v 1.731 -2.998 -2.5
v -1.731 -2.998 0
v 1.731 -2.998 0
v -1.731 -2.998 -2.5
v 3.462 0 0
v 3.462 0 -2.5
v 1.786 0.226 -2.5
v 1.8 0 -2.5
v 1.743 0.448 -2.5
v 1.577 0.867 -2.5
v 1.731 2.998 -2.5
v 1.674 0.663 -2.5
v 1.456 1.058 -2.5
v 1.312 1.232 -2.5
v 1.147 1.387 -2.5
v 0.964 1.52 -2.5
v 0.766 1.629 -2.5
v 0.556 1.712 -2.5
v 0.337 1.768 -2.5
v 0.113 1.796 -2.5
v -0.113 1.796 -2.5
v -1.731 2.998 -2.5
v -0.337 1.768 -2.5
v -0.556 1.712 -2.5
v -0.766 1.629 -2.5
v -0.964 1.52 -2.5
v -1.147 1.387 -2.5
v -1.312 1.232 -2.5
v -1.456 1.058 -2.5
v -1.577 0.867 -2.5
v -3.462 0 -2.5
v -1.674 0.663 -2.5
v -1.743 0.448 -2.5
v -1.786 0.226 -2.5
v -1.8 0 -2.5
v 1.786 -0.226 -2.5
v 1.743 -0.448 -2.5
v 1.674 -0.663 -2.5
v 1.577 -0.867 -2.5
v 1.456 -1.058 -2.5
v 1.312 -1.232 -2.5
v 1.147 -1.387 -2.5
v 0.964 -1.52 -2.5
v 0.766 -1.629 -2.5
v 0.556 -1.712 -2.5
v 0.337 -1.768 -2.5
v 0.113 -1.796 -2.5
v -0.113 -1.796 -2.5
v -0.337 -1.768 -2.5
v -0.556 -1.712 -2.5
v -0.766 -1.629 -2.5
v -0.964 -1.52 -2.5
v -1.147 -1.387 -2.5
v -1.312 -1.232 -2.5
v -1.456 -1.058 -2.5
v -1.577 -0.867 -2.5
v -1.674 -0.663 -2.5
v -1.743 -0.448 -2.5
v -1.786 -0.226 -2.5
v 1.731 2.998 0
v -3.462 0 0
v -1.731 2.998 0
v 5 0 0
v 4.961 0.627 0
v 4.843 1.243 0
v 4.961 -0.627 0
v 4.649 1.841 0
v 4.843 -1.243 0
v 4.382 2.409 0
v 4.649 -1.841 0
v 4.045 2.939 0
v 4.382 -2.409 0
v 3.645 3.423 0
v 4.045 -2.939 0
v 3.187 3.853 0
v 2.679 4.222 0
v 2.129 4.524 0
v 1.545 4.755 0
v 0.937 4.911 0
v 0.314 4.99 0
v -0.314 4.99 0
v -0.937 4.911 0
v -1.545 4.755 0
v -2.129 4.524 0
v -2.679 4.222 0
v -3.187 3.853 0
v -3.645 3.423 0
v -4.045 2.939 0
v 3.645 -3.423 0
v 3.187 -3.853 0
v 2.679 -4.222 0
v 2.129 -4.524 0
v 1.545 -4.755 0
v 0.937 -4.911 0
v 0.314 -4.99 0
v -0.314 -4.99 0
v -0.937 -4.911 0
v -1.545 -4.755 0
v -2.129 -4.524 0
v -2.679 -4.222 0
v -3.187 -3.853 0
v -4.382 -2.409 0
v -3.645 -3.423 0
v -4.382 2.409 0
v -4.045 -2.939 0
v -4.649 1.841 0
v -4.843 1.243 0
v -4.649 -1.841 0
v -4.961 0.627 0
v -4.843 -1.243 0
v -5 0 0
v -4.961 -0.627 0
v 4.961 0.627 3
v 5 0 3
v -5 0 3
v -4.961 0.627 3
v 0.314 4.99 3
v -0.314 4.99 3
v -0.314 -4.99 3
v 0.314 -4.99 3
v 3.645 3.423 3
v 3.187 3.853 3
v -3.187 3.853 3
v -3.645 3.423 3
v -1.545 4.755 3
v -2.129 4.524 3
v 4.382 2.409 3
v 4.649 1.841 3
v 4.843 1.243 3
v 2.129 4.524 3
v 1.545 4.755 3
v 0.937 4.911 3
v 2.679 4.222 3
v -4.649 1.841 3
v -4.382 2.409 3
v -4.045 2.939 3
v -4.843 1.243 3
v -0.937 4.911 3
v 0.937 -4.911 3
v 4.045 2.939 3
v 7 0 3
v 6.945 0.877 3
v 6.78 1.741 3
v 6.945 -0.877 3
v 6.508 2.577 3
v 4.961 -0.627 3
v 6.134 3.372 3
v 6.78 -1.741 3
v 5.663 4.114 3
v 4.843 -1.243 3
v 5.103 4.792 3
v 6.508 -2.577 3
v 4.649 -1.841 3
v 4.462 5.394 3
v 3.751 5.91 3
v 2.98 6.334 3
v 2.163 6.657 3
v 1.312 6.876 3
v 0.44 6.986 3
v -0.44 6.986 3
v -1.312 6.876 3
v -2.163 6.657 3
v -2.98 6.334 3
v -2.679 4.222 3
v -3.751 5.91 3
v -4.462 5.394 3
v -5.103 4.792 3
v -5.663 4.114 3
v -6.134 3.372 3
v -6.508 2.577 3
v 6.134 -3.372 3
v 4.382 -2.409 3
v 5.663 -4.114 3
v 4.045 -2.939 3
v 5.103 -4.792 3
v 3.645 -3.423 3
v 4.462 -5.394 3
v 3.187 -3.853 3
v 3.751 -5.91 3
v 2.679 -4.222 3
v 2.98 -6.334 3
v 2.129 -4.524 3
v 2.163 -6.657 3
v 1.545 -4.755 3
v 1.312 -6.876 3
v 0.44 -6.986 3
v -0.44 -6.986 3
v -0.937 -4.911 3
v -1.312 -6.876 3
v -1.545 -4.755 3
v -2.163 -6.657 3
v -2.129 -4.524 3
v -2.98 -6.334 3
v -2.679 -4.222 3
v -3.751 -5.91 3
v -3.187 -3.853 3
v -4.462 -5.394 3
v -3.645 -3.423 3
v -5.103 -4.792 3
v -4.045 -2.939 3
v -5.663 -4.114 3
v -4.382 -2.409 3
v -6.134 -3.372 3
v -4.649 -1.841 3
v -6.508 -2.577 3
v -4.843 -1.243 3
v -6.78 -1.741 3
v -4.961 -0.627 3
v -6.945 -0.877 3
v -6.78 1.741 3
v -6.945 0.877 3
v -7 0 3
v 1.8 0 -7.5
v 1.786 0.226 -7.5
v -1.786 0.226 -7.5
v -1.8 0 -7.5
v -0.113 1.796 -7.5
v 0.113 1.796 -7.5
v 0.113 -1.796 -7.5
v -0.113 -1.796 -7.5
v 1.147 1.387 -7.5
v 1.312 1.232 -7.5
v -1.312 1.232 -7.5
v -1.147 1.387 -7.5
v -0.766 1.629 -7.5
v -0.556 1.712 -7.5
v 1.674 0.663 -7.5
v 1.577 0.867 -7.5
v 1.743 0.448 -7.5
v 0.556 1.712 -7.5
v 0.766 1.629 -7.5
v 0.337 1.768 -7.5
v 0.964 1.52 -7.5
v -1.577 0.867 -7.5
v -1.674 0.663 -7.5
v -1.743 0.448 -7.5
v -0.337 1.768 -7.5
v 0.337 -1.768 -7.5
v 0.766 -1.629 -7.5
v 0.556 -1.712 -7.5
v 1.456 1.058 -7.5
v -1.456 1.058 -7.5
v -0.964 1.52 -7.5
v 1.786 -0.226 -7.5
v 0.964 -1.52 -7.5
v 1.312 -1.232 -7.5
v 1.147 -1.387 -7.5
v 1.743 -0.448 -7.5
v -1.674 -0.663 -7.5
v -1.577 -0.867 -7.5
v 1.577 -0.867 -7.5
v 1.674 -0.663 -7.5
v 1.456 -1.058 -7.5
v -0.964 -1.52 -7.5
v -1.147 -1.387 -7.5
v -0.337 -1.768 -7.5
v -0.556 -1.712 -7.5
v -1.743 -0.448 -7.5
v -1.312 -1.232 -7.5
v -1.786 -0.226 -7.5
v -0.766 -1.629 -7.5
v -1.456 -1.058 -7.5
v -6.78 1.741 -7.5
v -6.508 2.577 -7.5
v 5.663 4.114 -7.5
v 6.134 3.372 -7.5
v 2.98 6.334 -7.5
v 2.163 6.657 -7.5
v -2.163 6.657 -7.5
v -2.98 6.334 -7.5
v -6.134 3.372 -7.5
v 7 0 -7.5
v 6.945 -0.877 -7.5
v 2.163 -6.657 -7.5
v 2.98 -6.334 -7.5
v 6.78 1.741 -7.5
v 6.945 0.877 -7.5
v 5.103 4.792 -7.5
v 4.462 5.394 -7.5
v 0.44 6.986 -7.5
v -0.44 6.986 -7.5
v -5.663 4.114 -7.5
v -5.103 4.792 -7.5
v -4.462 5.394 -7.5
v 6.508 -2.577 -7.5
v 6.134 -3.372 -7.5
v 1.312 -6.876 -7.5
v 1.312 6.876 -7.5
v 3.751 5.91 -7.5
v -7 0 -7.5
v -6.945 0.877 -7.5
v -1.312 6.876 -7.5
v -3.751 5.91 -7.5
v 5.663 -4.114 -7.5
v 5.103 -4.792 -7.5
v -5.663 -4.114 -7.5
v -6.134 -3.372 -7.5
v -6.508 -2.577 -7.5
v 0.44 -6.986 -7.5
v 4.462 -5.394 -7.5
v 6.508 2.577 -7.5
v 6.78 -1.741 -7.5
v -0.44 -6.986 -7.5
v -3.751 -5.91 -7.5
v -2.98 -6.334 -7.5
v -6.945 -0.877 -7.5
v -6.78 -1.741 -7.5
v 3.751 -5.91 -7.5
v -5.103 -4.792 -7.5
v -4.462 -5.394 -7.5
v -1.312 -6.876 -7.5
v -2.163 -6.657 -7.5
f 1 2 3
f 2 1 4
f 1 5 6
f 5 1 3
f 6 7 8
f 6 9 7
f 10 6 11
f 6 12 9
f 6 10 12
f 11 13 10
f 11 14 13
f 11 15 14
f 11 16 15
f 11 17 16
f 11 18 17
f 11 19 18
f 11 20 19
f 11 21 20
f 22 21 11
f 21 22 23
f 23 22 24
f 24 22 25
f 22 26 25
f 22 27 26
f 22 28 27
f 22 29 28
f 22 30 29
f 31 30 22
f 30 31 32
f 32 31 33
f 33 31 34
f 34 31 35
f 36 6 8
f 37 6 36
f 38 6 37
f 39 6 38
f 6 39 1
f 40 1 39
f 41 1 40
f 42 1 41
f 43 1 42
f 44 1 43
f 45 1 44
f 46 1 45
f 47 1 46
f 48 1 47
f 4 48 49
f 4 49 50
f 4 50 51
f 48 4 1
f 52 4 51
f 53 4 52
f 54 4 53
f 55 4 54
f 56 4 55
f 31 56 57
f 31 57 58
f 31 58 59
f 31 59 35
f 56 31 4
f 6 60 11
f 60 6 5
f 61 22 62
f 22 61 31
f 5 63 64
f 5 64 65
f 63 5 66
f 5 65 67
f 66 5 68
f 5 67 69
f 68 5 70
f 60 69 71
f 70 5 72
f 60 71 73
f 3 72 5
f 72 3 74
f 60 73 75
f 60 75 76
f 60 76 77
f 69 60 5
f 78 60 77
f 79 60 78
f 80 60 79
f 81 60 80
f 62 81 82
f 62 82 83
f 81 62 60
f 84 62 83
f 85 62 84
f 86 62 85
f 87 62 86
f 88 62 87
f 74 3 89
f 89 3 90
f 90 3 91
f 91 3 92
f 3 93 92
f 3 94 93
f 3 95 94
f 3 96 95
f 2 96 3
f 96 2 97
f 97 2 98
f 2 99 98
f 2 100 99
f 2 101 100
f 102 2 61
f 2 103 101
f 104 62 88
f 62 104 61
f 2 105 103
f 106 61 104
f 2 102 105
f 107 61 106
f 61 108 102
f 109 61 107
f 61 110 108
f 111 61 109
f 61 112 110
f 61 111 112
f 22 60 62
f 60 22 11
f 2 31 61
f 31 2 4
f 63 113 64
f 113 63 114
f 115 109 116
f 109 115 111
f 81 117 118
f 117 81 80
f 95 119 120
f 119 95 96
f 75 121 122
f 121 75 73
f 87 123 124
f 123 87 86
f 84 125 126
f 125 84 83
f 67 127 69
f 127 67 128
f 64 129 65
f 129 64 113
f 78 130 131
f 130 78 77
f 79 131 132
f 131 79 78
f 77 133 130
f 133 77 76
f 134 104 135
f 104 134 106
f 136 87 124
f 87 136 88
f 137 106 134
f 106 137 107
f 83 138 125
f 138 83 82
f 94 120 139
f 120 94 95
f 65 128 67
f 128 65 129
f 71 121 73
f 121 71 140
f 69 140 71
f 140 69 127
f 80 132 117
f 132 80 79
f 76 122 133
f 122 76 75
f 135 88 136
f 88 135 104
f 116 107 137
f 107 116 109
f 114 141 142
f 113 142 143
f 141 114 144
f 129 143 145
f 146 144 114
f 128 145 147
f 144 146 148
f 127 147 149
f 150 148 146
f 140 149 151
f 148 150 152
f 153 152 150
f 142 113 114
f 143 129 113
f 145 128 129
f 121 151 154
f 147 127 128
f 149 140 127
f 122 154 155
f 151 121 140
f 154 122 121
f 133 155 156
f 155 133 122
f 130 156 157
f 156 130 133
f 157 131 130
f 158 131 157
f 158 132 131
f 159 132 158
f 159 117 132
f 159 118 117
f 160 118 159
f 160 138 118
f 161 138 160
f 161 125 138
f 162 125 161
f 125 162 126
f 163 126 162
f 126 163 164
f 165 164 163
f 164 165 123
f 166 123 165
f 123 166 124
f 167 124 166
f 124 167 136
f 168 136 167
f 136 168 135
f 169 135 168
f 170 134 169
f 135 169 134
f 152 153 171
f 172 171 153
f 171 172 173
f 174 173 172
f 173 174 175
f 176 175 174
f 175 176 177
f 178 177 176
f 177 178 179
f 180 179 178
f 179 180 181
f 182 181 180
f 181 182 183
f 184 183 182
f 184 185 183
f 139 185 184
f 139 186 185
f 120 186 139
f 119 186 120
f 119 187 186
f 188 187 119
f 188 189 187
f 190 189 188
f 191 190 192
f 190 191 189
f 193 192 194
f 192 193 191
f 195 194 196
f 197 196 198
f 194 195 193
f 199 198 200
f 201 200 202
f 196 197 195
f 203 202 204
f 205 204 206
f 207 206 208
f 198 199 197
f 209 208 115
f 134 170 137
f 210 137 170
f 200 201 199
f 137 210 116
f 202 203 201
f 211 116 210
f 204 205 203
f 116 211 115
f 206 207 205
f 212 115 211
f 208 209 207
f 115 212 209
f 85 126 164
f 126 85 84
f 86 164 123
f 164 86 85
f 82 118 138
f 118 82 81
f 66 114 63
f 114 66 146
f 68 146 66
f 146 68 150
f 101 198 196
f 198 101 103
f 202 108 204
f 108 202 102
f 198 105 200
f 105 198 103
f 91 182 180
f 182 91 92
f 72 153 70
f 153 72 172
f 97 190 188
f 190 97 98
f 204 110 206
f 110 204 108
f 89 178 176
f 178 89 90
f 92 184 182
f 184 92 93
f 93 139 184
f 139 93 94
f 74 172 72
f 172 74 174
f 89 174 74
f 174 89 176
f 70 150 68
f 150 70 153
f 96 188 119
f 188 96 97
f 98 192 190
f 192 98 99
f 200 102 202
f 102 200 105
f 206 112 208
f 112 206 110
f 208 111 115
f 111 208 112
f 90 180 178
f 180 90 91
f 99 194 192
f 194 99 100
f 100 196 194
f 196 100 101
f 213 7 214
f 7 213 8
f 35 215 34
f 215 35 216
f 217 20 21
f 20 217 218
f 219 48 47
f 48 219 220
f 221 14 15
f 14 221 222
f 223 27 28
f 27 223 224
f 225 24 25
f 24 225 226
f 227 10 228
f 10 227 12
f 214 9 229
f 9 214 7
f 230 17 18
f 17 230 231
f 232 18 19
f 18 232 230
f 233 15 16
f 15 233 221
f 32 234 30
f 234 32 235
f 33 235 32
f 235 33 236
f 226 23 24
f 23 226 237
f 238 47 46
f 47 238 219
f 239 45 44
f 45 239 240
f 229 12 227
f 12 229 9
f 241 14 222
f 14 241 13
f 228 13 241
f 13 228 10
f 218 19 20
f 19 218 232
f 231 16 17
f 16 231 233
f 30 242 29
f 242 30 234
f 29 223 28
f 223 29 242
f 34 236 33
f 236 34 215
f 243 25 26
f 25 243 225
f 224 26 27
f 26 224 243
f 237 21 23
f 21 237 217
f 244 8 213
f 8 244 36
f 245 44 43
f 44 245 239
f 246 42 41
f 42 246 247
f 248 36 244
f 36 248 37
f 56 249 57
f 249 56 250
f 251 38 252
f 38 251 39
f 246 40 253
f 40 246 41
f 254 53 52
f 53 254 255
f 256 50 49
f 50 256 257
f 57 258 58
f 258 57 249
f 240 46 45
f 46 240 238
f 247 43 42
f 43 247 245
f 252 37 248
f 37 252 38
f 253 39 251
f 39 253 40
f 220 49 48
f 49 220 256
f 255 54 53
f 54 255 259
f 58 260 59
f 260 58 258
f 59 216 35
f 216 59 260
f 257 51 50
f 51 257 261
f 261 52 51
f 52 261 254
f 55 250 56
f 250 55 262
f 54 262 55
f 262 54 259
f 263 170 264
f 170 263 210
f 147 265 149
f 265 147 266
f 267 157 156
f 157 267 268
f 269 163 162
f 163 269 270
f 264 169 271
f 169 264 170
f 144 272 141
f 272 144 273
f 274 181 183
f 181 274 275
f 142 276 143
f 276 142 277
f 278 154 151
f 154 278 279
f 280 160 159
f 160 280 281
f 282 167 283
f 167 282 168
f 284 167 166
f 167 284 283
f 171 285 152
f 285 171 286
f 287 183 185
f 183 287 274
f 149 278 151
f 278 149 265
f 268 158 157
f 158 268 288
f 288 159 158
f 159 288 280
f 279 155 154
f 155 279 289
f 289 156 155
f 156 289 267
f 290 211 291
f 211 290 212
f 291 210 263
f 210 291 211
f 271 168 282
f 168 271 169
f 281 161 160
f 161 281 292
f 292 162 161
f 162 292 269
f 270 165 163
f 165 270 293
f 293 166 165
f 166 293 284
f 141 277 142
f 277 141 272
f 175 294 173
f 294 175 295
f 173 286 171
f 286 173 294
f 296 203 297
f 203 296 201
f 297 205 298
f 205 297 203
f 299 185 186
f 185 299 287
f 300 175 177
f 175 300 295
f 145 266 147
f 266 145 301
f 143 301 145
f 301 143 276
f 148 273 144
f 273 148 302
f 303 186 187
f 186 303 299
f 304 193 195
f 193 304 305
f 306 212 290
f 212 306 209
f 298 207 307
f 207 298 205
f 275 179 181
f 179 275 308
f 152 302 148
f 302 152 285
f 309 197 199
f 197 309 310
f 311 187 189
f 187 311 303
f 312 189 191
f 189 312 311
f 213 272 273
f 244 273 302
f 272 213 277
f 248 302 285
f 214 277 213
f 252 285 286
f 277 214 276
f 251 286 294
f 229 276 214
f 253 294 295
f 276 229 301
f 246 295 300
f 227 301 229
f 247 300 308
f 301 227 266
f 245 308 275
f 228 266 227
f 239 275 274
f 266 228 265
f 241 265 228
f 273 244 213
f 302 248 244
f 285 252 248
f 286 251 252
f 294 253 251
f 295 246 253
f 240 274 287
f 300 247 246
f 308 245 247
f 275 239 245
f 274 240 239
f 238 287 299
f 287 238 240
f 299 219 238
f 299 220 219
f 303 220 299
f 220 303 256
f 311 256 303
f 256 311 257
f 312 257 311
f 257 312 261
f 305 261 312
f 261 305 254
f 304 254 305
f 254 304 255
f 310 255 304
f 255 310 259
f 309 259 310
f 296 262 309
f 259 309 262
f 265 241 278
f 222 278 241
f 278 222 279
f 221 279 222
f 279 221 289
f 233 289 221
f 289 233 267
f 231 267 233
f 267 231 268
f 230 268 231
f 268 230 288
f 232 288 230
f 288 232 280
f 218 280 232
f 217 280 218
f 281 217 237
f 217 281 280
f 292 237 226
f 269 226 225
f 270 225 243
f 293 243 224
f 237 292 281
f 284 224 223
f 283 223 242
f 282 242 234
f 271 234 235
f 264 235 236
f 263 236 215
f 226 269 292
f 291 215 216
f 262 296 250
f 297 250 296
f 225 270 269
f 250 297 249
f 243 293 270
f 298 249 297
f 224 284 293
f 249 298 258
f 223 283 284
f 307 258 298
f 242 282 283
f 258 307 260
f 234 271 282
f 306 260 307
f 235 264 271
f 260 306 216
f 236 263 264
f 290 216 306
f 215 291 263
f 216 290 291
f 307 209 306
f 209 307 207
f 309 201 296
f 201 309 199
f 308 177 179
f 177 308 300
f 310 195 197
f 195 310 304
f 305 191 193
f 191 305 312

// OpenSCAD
$fn = 50;


difference() {
	union() {
		translate(v = [0, 0, -7.5000000000]) {
			cylinder(h = 10.5000000000, r = 7.0000000000);
		}
	}
	union() {
		translate(v = [0, 0, 0]) {
			rotate(a = [0, 0, 0]) {
				difference() {
					union() {
						translate(v = [0, 0, -2.5000000000]) {
							linear_extrude(height = 2.5000000000) {
								polygon(points = [[3.4620000000, 0.0000000000], [1.7310000000, 2.9981799479], [-1.7310000000, 2.9981799479], [-3.4620000000, 0.0000000000], [-1.7310000000, -2.9981799479], [1.7310000000, -2.9981799479]]);
							}
						}
					}
					union();
				}
			}
		}
		#cylinder(h = 3, r = 5.0000000000);
		#translate(v = [0, 0, -100.0000000000]) {
			cylinder(h = 200, r = 1.8000000000);
		}
	}
}
